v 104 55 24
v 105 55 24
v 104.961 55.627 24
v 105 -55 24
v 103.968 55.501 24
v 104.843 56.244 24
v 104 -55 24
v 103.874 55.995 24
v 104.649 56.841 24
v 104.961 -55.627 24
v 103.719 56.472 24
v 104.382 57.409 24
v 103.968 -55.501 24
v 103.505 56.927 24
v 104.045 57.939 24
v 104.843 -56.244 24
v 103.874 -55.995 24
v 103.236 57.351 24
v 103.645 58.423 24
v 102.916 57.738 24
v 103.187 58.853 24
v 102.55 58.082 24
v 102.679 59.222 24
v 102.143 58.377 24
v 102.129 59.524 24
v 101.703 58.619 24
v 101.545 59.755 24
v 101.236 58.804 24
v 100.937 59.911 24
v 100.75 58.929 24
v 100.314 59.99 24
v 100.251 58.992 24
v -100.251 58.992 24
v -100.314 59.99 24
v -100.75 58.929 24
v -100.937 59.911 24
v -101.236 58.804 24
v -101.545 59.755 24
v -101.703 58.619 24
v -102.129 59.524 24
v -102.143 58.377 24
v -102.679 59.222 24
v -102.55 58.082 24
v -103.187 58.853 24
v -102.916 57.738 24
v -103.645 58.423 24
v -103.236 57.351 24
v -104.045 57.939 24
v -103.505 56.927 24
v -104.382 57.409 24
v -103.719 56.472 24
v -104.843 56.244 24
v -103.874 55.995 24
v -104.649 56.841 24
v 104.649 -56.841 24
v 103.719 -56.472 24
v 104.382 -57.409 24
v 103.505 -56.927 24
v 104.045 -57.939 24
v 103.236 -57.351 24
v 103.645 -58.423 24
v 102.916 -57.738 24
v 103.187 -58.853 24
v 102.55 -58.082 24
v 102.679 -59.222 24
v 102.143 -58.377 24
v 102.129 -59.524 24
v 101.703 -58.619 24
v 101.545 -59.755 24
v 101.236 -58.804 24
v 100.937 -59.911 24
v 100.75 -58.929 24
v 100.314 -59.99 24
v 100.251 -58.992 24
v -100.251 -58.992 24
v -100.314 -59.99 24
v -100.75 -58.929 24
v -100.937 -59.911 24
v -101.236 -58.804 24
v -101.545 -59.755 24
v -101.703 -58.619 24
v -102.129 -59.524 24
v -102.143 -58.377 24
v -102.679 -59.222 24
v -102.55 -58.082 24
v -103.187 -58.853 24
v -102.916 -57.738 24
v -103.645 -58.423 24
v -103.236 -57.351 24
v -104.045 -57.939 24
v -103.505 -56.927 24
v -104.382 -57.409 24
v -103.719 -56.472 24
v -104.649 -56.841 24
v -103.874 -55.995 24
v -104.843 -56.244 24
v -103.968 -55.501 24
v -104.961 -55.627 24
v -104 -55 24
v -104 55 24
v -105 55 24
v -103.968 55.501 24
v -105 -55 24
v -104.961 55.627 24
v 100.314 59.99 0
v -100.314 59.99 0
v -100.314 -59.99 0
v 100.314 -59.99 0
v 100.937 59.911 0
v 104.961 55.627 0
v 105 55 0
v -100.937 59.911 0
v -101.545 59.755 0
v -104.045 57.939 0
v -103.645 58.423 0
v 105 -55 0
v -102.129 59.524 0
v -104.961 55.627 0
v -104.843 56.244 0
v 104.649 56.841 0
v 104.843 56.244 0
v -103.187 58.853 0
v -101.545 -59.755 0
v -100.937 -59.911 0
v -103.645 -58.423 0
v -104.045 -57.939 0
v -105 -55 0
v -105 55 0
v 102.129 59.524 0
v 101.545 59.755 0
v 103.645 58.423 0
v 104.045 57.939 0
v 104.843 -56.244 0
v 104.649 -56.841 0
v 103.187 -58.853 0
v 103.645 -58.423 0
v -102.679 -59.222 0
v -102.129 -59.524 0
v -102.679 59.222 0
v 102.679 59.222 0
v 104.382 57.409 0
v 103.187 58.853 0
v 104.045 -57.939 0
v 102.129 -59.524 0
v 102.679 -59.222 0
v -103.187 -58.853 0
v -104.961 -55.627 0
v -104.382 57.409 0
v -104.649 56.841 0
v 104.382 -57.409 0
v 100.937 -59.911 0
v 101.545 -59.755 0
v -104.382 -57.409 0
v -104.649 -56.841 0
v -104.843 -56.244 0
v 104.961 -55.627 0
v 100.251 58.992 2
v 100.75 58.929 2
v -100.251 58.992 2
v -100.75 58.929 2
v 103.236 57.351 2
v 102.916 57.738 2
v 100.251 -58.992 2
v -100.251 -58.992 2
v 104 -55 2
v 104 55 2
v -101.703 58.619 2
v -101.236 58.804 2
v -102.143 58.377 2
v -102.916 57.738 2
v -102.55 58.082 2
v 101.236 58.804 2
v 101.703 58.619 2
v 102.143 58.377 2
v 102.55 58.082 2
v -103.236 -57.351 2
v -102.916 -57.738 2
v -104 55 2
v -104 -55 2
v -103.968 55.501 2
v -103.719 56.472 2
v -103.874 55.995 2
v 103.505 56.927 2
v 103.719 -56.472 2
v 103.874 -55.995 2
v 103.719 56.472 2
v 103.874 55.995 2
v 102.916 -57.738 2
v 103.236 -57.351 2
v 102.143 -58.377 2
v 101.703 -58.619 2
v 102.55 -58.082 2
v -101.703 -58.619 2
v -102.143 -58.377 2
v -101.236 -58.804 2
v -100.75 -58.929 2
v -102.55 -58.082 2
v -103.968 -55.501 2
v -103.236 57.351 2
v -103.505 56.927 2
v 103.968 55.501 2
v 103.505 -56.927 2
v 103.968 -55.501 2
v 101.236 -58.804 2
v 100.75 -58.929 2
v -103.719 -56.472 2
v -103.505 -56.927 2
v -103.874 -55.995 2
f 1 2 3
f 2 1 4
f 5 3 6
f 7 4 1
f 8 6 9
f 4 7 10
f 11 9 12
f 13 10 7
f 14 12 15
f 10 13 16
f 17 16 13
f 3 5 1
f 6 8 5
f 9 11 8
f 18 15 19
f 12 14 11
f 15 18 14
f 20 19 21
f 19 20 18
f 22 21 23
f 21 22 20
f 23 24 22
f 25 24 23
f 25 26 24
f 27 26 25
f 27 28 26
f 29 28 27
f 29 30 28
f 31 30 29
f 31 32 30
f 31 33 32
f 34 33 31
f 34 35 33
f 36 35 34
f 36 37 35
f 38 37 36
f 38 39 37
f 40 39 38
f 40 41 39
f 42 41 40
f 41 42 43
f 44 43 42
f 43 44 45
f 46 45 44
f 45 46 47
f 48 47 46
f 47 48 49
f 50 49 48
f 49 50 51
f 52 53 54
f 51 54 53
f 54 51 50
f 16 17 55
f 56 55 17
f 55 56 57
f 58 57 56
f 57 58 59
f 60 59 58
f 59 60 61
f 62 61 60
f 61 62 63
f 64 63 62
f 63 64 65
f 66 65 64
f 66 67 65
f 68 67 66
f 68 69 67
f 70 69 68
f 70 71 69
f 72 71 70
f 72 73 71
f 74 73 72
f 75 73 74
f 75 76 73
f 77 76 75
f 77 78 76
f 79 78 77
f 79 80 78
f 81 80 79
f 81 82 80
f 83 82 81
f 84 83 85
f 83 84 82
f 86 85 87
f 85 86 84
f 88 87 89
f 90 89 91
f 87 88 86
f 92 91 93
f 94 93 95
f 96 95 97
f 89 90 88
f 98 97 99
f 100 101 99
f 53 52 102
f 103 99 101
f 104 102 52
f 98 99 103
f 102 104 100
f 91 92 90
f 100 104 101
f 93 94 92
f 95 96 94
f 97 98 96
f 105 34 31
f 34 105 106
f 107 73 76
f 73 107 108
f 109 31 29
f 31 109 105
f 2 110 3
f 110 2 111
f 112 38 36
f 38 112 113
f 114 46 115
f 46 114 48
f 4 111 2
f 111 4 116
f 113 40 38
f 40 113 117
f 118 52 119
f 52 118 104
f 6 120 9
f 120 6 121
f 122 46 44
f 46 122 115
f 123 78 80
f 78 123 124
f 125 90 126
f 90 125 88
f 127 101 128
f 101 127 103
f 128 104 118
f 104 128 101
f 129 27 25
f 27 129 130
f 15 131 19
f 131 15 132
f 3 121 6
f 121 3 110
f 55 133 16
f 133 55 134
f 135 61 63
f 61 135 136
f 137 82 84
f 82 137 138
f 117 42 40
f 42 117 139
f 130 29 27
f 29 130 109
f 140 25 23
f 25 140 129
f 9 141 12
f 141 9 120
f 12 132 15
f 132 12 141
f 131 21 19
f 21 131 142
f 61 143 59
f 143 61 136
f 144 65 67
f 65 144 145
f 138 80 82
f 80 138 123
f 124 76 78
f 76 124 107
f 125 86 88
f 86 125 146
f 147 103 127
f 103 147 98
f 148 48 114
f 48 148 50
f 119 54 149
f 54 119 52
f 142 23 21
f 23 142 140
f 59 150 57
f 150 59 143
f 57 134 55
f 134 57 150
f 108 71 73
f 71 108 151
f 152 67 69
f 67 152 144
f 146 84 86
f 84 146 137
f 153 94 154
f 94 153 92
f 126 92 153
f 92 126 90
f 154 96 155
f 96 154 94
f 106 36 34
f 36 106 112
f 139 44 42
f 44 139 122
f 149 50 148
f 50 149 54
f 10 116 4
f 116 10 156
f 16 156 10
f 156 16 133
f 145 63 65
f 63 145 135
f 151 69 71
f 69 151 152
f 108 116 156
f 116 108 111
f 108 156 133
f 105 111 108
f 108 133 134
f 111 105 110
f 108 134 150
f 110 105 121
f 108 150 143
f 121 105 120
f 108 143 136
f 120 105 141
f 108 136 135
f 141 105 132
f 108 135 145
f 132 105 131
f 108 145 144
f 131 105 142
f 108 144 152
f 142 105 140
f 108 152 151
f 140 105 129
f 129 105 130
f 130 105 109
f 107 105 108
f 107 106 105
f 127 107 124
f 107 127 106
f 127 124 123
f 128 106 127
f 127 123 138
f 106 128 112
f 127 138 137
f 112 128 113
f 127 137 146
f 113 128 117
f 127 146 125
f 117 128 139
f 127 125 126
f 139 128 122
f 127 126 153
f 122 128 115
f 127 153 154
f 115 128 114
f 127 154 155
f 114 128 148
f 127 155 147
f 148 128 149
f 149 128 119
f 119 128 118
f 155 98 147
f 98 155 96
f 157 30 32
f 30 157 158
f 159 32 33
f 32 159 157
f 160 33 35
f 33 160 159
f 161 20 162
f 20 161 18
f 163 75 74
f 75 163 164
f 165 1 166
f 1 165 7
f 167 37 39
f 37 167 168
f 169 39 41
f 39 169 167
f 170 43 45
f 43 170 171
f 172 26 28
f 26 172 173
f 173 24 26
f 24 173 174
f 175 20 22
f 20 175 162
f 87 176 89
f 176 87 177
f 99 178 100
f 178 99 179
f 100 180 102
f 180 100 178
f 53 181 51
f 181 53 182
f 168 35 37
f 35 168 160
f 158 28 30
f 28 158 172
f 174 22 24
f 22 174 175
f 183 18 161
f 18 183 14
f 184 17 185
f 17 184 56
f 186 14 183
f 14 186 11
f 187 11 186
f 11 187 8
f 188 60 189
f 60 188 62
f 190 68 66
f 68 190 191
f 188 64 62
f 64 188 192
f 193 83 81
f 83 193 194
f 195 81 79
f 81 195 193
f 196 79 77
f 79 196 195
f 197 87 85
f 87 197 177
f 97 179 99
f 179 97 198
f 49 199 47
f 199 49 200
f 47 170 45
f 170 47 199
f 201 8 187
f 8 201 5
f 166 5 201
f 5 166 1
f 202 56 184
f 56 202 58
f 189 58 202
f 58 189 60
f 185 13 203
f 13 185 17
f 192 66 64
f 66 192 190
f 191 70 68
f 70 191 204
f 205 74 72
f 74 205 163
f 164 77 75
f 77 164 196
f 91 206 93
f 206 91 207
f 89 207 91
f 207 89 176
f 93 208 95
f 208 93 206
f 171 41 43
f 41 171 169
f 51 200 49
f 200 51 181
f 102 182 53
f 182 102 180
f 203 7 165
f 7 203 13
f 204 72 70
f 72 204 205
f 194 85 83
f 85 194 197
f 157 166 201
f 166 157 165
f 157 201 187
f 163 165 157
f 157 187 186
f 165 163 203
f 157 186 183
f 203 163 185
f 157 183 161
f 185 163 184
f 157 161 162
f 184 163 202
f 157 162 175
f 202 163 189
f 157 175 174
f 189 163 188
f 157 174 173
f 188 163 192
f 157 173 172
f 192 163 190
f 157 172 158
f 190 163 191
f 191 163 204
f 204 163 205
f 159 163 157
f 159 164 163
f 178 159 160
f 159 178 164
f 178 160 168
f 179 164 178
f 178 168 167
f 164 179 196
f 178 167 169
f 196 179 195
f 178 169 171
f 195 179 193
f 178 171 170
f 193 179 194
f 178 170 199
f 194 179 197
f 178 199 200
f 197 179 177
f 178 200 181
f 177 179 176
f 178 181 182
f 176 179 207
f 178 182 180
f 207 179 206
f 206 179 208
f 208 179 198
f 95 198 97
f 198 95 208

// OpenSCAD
$fn = 50;


difference() {
	union() {
		hull() {
			translate(v = [-100.0000000000, 55.0000000000, 0]) {
				cylinder(h = 24, r = 5);
			}
			translate(v = [100.0000000000, 55.0000000000, 0]) {
				cylinder(h = 24, r = 5);
			}
			translate(v = [-100.0000000000, -55.0000000000, 0]) {
				cylinder(h = 24, r = 5);
			}
			translate(v = [100.0000000000, -55.0000000000, 0]) {
				cylinder(h = 24, r = 5);
			}
		}
	}
	union() {
		translate(v = [0, 0, 2]) {
			hull() {
				translate(v = [-100.0000000000, 55.0000000000, 0]) {
					cylinder(h = 22, r = 4);
				}
				translate(v = [100.0000000000, 55.0000000000, 0]) {
					cylinder(h = 22, r = 4);
				}
				translate(v = [-100.0000000000, -55.0000000000, 0]) {
					cylinder(h = 22, r = 4);
				}
				translate(v = [100.0000000000, -55.0000000000, 0]) {
					cylinder(h = 22, r = 4);
				}
			}
		}
	}
}
